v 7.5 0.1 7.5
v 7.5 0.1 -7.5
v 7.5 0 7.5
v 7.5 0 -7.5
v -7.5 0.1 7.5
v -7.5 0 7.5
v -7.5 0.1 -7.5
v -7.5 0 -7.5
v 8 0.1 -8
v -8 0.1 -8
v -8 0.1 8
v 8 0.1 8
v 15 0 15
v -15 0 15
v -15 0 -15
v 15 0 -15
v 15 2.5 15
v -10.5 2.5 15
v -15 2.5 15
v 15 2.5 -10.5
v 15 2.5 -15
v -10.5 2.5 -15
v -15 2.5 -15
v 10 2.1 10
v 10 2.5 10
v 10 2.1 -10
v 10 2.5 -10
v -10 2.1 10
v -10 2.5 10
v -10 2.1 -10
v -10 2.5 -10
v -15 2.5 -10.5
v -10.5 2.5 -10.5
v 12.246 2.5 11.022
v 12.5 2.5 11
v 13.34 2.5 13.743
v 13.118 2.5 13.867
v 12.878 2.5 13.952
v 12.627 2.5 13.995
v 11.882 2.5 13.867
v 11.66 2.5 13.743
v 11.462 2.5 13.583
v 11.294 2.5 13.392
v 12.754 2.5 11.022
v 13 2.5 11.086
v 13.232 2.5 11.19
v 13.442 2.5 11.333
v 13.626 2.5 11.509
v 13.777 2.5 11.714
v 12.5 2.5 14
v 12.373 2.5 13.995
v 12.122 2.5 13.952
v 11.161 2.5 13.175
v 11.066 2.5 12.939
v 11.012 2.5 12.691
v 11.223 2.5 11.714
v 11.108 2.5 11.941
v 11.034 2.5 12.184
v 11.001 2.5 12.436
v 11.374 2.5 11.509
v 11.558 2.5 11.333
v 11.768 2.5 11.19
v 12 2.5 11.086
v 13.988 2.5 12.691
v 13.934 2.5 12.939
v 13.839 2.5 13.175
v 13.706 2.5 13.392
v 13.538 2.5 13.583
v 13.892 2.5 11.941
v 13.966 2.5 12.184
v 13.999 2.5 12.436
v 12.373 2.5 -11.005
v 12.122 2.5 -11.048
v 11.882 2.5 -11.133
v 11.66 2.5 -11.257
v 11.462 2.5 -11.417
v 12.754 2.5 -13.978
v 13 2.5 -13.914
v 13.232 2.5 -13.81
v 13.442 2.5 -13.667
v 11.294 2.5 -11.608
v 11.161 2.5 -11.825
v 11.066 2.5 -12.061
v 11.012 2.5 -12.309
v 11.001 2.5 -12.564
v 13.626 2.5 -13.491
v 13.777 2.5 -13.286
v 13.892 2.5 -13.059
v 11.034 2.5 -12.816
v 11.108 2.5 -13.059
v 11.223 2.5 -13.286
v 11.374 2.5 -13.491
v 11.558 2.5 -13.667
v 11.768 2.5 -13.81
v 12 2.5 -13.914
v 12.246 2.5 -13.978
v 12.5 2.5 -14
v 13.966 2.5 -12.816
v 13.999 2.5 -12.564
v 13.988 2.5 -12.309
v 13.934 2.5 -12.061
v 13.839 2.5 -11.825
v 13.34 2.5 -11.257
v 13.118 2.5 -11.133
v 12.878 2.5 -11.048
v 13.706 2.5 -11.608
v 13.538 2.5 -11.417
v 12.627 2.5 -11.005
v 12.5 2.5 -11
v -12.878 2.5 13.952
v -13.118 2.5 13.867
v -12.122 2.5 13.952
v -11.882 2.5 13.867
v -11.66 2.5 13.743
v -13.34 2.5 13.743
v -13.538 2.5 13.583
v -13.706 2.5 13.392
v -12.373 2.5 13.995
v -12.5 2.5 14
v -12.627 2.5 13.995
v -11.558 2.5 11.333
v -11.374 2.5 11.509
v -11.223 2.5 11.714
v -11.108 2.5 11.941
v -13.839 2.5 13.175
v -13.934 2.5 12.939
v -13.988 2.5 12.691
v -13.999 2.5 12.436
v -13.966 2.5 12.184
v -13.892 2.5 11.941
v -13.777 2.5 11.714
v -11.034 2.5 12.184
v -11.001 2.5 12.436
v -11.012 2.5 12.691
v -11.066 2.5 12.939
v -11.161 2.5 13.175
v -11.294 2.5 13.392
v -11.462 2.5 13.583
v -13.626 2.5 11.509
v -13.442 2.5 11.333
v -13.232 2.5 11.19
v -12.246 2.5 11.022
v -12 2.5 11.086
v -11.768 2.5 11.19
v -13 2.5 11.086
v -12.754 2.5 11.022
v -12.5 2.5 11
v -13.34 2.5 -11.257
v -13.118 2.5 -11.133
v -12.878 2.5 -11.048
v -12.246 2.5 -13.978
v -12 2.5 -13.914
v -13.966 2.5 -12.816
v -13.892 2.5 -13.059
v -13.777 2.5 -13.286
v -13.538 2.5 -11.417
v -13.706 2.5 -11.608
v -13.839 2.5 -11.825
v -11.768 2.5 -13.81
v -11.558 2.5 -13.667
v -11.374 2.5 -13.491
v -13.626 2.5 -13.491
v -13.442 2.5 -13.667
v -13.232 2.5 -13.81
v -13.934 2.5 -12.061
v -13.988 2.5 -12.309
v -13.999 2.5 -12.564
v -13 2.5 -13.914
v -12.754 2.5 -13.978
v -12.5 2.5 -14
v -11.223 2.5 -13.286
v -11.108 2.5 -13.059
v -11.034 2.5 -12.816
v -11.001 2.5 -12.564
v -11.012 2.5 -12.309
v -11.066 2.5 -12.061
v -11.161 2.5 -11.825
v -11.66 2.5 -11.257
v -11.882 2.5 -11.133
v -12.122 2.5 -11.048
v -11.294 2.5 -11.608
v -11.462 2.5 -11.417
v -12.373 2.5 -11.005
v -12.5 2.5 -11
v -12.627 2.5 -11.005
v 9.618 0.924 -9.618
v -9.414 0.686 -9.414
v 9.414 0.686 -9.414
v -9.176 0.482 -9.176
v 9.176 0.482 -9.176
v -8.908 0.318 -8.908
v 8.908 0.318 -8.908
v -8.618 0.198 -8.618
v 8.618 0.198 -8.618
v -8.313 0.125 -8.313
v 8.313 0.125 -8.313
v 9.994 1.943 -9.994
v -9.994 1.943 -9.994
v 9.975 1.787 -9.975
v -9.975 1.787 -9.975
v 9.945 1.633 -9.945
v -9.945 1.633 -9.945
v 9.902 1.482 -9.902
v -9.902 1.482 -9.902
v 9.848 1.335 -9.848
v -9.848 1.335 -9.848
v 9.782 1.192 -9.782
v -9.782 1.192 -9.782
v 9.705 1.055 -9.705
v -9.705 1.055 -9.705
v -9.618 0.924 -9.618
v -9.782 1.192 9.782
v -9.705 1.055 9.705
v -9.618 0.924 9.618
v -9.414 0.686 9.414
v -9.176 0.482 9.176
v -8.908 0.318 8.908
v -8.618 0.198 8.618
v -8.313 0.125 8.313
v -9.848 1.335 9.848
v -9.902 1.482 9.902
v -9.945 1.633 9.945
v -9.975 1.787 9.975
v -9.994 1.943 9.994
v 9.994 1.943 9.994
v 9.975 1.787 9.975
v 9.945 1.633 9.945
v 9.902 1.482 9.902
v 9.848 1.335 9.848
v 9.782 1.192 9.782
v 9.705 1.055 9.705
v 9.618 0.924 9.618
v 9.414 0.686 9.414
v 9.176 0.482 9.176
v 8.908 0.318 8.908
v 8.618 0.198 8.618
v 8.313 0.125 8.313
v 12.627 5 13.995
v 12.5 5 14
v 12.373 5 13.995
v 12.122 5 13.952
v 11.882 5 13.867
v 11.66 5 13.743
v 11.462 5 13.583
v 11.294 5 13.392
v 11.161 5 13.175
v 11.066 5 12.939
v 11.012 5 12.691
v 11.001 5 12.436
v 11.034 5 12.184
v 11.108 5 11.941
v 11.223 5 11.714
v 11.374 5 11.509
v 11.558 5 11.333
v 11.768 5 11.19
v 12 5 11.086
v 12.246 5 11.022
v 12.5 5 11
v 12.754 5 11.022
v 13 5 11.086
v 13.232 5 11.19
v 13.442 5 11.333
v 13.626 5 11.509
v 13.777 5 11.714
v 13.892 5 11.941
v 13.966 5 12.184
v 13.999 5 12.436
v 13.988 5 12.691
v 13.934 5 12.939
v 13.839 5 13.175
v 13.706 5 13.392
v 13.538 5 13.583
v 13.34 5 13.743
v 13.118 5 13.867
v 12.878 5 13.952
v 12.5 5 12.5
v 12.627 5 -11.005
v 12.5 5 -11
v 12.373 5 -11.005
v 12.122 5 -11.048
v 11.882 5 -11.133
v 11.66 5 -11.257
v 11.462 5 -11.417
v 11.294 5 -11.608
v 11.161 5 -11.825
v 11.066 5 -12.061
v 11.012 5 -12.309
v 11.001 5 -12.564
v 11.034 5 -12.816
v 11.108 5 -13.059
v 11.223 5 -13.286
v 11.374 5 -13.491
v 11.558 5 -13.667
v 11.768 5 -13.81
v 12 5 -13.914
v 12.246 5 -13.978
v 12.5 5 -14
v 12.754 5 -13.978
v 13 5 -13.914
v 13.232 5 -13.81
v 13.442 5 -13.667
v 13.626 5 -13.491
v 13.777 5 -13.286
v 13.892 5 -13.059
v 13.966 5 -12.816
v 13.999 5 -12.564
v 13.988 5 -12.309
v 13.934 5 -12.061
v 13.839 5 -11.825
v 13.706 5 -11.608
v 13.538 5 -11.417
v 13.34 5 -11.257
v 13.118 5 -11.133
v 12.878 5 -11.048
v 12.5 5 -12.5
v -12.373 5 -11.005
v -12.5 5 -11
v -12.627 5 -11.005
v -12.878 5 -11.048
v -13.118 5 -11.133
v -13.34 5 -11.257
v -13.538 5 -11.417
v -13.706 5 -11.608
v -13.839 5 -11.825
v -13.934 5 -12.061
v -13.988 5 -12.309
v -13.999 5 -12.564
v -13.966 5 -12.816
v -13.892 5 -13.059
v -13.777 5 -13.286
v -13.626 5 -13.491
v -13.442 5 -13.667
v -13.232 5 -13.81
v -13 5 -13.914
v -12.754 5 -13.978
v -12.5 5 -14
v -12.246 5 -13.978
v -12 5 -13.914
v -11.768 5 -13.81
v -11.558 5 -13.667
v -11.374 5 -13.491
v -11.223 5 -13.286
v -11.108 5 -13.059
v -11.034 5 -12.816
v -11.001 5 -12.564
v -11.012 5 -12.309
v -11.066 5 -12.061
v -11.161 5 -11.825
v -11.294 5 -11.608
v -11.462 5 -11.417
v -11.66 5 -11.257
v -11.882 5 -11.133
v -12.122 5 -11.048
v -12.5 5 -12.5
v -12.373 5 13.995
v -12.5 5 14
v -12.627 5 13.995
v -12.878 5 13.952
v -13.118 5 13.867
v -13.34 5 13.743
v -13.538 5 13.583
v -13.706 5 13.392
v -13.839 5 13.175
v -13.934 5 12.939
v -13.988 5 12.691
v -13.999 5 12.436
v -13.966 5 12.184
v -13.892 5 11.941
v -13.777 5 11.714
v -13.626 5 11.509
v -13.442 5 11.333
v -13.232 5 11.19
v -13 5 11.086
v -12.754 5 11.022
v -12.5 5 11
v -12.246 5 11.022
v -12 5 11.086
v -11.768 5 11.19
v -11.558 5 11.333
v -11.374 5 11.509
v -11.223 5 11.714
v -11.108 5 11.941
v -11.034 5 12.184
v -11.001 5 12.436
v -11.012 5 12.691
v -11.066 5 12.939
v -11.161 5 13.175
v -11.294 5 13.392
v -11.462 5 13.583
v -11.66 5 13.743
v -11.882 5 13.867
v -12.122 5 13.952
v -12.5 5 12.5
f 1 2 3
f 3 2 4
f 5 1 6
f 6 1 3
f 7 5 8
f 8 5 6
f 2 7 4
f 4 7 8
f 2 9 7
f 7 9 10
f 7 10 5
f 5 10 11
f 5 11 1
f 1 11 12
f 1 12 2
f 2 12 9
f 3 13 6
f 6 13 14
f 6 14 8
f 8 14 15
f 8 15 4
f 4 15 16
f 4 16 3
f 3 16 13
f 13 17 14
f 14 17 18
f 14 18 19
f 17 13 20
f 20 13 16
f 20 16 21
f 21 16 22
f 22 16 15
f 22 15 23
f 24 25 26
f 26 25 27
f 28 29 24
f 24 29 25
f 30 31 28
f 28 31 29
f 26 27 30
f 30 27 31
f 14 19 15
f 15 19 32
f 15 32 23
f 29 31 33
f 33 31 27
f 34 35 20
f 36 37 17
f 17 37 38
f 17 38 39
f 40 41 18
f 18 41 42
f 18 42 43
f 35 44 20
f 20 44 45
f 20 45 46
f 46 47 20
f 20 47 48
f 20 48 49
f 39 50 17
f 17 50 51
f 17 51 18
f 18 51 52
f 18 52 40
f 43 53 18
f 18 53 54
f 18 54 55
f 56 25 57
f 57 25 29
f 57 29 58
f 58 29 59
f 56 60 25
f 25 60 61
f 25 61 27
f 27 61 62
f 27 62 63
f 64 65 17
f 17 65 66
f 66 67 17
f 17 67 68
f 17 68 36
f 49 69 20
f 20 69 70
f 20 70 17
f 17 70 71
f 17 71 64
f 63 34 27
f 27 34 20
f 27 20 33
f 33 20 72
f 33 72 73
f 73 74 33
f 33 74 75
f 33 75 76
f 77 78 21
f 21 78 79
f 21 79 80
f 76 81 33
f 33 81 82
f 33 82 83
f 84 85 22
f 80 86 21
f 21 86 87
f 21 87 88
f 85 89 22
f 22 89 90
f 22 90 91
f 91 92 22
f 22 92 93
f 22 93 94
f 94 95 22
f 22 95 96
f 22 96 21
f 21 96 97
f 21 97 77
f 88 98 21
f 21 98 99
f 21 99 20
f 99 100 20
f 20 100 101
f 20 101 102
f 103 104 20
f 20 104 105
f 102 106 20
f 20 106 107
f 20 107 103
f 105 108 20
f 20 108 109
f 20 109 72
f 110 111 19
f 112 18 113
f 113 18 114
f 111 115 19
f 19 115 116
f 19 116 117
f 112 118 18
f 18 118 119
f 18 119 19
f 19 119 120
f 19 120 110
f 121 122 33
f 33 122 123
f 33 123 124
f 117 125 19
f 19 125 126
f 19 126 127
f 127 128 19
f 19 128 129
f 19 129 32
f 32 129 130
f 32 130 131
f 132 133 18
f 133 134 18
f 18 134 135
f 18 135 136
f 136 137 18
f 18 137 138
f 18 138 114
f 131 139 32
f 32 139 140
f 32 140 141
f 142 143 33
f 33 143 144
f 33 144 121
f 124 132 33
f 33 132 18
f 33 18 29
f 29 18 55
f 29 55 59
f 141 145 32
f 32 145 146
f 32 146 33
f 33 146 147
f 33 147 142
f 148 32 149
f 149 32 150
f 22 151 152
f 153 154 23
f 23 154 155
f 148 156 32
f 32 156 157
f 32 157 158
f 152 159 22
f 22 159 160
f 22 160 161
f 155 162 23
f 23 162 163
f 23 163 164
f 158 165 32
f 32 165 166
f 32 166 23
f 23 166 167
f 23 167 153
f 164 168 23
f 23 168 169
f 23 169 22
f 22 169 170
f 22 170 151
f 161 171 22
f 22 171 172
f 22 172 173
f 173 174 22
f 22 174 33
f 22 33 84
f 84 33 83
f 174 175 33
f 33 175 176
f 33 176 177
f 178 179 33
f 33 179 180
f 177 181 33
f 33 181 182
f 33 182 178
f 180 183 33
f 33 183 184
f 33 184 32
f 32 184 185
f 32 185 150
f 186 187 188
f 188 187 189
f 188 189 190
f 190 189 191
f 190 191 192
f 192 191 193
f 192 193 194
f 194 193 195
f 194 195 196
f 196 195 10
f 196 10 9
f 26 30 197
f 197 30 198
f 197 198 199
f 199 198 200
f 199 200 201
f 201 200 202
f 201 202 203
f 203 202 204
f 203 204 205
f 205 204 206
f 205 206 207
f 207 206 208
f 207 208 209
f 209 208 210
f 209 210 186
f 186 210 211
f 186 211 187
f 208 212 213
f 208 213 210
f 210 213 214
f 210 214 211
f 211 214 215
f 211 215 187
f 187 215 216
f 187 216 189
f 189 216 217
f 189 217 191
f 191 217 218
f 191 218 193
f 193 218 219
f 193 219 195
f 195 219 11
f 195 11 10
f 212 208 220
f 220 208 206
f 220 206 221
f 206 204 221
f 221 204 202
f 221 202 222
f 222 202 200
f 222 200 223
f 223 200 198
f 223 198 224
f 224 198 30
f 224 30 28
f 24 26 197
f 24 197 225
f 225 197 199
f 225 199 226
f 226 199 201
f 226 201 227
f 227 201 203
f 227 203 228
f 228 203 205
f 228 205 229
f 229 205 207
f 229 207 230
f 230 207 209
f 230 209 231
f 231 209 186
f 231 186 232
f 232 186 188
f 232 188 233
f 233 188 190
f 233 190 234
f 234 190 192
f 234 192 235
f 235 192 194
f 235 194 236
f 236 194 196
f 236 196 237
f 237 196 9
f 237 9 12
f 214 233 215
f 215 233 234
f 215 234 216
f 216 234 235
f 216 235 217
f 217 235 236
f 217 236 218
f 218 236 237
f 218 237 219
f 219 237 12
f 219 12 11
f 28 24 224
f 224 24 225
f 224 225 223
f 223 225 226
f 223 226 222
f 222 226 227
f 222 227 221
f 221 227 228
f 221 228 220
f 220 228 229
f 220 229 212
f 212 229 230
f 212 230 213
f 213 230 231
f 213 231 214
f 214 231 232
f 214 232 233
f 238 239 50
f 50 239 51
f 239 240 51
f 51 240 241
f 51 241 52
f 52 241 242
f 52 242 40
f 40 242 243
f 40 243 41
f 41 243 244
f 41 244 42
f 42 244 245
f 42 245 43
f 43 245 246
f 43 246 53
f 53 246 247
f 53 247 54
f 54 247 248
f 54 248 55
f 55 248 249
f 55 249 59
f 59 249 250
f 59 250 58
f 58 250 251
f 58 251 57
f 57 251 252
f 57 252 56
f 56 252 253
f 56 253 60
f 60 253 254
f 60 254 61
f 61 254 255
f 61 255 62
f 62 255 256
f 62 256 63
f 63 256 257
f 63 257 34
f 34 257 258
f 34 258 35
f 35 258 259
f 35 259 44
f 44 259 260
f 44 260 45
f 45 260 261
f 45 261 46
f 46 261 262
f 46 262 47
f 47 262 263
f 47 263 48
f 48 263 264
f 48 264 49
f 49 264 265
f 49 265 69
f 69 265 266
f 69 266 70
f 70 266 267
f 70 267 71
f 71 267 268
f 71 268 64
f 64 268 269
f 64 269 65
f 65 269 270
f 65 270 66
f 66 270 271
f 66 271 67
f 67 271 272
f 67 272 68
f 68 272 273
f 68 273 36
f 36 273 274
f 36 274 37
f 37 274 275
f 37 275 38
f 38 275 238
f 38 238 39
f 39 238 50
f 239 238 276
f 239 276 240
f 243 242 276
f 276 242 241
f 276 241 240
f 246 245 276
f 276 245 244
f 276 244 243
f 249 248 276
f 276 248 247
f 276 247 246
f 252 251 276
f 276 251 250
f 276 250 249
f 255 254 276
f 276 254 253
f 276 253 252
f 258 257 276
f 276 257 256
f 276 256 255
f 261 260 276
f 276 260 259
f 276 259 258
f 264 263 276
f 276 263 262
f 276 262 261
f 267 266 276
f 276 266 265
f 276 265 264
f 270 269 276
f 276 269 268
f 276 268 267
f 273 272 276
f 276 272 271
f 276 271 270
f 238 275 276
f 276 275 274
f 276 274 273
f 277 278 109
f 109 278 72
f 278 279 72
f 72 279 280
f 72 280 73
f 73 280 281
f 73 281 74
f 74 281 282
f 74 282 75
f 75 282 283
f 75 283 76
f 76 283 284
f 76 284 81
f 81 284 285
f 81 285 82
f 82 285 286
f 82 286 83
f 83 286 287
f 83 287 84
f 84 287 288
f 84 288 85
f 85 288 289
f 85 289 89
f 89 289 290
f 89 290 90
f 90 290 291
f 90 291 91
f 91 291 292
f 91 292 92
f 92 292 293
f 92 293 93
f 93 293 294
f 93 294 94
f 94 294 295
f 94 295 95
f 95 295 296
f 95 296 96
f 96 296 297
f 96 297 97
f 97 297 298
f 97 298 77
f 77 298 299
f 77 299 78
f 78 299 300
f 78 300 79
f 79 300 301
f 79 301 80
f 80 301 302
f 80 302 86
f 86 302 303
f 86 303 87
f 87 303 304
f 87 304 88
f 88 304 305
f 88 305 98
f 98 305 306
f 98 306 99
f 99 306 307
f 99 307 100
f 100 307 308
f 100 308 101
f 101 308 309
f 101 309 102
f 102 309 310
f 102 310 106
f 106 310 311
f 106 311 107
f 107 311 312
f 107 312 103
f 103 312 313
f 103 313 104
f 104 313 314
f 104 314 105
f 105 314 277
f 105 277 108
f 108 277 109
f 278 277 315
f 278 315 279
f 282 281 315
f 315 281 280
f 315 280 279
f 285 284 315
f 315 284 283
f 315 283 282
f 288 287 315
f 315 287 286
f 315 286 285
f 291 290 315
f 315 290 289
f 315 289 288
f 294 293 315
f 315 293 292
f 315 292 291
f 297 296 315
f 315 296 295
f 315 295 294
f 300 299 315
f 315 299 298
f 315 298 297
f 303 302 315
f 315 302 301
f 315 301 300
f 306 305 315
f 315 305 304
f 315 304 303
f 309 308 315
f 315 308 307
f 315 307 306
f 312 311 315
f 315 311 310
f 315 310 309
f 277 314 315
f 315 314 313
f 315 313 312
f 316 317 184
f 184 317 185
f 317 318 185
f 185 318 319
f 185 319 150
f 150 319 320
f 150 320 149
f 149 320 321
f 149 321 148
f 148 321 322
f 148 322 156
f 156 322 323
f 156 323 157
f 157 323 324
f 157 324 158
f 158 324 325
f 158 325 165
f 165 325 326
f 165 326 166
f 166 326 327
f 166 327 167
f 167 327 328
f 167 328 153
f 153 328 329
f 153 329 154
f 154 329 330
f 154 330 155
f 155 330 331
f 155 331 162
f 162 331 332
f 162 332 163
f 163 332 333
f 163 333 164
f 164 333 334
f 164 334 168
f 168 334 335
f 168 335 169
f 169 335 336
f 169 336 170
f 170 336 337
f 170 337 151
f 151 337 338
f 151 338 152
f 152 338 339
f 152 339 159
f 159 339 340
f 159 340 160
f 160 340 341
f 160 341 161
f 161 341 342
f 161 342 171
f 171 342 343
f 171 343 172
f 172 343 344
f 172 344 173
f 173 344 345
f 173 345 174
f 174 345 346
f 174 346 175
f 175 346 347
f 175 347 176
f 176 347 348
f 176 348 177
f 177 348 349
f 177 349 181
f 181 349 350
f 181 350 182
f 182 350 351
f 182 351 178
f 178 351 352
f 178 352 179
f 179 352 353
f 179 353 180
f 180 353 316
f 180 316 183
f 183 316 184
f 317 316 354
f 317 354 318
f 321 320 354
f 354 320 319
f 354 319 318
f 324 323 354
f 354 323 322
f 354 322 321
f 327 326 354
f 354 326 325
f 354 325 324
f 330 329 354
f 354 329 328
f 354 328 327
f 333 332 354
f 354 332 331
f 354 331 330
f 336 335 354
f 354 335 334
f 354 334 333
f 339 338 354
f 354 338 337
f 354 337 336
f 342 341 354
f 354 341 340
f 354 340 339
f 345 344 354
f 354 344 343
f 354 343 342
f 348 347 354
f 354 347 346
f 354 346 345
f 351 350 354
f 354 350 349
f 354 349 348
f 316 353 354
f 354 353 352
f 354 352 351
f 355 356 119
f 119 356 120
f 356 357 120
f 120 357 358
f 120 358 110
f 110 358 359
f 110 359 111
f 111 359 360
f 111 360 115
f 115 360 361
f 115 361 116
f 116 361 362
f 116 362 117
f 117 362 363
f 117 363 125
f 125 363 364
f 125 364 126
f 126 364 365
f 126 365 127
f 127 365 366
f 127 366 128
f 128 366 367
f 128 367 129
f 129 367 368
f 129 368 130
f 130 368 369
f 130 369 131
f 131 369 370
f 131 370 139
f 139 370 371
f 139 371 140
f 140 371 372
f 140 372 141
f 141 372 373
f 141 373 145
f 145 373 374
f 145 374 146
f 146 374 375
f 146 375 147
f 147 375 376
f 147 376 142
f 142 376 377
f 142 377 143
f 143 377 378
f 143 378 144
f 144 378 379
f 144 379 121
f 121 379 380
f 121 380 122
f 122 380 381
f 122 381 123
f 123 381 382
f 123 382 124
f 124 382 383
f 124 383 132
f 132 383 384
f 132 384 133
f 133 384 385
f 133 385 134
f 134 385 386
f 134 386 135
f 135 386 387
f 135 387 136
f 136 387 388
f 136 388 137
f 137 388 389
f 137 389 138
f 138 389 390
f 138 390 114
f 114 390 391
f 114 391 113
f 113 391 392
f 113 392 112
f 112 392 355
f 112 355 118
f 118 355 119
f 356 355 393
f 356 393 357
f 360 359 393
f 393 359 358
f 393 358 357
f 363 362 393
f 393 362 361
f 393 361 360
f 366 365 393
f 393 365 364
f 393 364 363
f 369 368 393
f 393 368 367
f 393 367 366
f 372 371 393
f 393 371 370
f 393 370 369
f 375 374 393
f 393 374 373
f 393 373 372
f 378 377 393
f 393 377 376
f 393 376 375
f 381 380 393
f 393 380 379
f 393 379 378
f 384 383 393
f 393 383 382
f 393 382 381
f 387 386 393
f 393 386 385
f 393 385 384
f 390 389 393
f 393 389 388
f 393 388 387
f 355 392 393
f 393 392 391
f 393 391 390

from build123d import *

# Parameters (mm, degrees)
SKETCH1_W           = 20
SKETCH1_H           = 20
SKETCH1_W_2         = 15
SKETCH1_H_2         = 15
BOSS_EXTRUDE3_DEPTH = 0.1
SKETCH1_5_W         = 30
SKETCH1_5_H         = 30
SKETCH1_5_W_2       = 20
SKETCH1_5_H_2       = 20
BOSS_EXTRUDE4_DEPTH = 2.5
FILLET2_R           = 2
SKETCH2_R           = 1.5
BOSS_EXTRUDE5_DEPTH = 2.5


with BuildPart() as part:
    # Sketch1 → Boss-Extrude3 (new body)
    with BuildSketch(Plane(origin=(0, 0, 0), x_dir=(1, 0, 0), z_dir=(0, 1, 0))):
        Rectangle(SKETCH1_W, SKETCH1_H)
        Rectangle(SKETCH1_W_2, SKETCH1_H_2, mode=Mode.SUBTRACT)
    extrude(amount=BOSS_EXTRUDE3_DEPTH)

    # Sketch1<5> → Boss-Extrude4 (add)
    with BuildSketch(Plane(origin=(0, 0, 0), x_dir=(1, 0, 0), z_dir=(0, 1, 0))):
        Rectangle(SKETCH1_5_W, SKETCH1_5_H)
        Rectangle(SKETCH1_5_W_2, SKETCH1_5_H_2, mode=Mode.SUBTRACT)
    extrude(amount=BOSS_EXTRUDE4_DEPTH)

    # Fillet2
    fillet2_edges = [part.edges().sort_by_distance(p)[0] for p in [
        (0, 0.1, 10),
        (0, 0.1, -10),
        (10, 0.1, 0),
        (-10, 0.1, 0),
    ]]
    fillet(fillet2_edges, radius=FILLET2_R)

    # Sketch2 → Boss-Extrude5 (add)
    with BuildSketch(Plane(origin=(0, 2.5, 0), x_dir=(1, 0, 0), z_dir=(0, 1, 0))):
        with Locations((-12.5, 12.5)):
            Circle(SKETCH2_R)
        with Locations((12.5, 12.5)):
            Circle(SKETCH2_R)
        with Locations((12.5, -12.5)):
            Circle(SKETCH2_R)
        with Locations((-12.5, -12.5)):
            Circle(SKETCH2_R)
    extrude(amount=BOSS_EXTRUDE5_DEPTH)


solid = part.part
